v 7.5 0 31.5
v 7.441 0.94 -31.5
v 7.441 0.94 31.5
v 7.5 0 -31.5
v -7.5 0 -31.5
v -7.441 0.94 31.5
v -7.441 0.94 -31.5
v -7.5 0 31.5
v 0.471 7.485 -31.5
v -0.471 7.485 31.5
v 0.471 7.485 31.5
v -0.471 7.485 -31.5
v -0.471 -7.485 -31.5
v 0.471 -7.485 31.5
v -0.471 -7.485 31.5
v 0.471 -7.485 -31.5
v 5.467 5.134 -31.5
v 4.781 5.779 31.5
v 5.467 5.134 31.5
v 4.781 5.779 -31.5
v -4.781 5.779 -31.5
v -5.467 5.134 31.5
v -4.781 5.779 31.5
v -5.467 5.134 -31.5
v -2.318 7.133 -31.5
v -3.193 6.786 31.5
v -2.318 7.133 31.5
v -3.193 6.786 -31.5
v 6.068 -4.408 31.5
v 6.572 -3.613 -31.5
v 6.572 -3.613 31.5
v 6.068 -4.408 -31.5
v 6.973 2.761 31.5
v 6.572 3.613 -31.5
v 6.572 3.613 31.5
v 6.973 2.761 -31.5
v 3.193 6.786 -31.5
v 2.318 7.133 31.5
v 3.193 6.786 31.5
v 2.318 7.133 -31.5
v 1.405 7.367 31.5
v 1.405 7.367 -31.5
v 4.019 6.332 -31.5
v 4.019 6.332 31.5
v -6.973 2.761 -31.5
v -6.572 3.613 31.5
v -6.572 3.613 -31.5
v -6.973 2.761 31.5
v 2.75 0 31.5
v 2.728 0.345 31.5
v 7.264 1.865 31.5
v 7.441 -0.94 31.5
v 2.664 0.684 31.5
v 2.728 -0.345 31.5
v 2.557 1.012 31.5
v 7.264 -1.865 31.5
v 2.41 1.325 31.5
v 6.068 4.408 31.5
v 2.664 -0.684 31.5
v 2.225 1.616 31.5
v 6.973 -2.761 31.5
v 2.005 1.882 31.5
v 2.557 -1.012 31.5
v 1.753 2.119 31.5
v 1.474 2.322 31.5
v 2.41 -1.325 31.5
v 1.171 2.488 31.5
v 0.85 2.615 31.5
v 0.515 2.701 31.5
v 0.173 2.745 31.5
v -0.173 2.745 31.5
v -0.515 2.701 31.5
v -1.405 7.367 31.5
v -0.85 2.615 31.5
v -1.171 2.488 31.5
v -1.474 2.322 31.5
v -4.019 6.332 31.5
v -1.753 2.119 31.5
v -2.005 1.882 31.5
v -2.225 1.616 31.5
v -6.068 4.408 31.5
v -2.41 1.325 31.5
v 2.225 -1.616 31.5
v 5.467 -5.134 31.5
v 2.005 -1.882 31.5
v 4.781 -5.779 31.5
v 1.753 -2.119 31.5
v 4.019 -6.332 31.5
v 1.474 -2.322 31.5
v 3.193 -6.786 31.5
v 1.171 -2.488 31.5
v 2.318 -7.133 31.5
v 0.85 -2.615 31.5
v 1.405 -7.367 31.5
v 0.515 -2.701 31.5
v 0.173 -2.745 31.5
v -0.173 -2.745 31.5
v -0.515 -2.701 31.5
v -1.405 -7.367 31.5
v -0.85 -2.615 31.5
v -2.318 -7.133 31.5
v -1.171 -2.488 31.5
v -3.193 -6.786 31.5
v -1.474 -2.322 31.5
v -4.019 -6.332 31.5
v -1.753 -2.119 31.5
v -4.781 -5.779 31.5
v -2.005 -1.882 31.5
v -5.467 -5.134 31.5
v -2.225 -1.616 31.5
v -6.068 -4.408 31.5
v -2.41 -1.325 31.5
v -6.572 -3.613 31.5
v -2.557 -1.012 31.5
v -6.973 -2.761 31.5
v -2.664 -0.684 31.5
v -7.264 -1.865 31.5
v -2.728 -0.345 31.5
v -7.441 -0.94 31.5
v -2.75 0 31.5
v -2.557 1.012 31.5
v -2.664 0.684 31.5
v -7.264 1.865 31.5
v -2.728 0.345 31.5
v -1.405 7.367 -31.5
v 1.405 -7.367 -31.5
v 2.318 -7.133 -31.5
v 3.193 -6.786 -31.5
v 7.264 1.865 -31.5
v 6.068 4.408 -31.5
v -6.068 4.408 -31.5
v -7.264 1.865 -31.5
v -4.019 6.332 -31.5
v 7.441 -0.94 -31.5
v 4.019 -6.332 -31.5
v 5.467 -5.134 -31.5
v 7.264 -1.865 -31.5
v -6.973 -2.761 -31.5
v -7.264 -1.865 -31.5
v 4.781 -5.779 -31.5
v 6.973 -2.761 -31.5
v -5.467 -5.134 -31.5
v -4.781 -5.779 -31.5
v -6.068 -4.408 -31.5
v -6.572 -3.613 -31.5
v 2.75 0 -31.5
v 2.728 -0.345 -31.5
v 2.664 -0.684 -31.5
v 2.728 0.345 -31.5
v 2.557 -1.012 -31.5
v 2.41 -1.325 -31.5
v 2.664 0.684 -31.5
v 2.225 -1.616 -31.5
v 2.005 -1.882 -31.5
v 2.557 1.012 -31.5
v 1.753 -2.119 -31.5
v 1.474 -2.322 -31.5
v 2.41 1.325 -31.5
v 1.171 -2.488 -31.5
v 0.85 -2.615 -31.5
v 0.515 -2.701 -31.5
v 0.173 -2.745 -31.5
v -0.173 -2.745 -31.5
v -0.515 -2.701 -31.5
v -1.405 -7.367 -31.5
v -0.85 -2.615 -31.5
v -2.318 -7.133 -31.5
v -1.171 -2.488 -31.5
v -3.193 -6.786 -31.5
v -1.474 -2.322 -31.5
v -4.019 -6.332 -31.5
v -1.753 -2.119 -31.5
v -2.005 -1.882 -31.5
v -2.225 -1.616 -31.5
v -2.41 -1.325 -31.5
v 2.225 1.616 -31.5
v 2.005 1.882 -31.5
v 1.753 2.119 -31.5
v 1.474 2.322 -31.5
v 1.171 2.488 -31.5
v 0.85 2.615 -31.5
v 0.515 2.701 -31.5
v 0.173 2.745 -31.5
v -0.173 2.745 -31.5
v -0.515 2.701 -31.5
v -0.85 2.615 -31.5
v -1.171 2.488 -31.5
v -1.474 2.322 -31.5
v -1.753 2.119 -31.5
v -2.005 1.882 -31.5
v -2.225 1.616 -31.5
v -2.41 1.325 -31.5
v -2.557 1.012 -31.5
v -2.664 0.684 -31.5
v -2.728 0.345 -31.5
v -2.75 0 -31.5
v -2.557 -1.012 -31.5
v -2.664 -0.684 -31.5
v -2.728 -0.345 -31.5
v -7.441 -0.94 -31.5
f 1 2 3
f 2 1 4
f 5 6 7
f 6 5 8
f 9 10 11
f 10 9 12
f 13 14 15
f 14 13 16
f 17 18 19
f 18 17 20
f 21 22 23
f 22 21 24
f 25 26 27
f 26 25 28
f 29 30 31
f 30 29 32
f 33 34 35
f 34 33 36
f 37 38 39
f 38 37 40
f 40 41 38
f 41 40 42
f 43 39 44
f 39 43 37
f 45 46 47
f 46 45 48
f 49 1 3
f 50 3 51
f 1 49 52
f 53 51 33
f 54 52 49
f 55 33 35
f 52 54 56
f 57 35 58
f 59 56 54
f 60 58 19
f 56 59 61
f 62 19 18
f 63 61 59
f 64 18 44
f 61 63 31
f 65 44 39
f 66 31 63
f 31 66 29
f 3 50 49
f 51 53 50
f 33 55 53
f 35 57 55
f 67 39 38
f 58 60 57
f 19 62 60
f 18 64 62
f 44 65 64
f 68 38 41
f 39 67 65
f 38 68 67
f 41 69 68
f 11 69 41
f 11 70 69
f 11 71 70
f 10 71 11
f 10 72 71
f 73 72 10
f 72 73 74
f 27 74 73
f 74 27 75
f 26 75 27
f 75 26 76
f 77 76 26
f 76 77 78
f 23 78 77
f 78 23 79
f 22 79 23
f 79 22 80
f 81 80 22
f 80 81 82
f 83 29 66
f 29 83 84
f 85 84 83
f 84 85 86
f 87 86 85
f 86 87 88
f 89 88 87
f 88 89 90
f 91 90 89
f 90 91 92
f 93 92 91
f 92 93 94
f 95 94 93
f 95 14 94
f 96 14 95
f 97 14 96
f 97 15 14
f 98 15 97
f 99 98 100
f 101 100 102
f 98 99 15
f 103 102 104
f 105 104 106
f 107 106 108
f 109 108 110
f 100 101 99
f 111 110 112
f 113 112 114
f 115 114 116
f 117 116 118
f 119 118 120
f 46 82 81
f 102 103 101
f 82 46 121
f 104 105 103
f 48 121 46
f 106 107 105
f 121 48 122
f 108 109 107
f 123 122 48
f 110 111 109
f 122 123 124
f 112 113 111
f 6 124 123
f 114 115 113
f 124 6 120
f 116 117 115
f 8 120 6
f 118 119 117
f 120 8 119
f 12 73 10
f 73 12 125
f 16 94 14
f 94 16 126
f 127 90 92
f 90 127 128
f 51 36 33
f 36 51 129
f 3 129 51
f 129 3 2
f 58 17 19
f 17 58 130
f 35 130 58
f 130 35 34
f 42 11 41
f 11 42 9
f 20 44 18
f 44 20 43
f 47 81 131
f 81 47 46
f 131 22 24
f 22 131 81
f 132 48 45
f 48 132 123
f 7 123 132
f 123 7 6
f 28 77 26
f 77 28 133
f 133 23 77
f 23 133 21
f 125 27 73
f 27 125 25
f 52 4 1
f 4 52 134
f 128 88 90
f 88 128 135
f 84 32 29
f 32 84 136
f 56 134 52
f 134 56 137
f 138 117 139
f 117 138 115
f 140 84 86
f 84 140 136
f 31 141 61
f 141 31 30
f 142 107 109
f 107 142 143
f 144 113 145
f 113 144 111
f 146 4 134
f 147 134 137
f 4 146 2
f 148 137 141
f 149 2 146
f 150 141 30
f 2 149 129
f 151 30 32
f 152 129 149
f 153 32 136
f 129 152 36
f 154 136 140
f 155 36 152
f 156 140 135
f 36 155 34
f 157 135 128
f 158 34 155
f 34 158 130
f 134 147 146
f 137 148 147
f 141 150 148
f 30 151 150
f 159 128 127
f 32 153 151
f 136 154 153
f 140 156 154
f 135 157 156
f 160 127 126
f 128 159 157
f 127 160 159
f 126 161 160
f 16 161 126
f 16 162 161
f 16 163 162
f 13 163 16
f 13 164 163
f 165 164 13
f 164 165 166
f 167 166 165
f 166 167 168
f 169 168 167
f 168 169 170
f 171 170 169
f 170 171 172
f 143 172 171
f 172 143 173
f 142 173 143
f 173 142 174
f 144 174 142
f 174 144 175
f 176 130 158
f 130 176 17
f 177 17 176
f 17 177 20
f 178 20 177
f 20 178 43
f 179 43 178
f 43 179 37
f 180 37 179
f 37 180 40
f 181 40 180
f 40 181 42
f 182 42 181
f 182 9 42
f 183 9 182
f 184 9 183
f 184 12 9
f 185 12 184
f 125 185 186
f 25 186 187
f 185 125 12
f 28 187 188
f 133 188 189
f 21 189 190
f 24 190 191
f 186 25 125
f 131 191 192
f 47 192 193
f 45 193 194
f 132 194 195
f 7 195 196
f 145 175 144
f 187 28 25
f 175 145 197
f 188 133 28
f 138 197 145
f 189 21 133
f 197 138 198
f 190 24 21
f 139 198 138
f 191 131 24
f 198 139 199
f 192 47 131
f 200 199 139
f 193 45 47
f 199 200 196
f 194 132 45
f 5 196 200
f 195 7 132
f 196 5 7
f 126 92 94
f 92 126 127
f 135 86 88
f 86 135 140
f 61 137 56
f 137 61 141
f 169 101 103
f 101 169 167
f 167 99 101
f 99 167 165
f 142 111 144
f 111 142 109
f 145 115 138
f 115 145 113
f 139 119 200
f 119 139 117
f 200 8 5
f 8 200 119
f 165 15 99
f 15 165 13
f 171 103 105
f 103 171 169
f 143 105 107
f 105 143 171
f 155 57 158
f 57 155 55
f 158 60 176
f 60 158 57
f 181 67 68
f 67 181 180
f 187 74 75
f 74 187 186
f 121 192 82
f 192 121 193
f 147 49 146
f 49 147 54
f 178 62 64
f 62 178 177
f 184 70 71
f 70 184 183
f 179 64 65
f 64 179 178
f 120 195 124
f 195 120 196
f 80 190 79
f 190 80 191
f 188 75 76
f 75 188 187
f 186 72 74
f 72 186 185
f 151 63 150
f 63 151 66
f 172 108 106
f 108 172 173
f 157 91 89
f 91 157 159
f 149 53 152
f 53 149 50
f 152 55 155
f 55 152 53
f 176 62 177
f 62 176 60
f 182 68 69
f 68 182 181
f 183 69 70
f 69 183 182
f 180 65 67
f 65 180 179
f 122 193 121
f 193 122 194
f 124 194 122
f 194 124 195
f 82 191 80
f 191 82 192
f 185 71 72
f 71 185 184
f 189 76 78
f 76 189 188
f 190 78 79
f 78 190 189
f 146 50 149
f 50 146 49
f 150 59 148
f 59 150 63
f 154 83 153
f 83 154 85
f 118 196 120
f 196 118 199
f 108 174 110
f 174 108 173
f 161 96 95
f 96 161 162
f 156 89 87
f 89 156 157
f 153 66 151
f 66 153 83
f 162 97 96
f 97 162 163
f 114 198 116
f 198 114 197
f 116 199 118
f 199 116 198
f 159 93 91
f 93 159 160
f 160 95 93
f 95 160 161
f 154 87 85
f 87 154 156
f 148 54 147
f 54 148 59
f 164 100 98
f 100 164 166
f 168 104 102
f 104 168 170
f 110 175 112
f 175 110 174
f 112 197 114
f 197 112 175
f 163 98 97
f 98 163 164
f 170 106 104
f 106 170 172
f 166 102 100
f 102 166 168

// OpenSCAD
$fn = 50;


difference() {
	union() {
		translate(v = [0, 0, -31.5000000000]) {
			cylinder(h = 63, r = 7.5000000000);
		}
	}
	union() {
		translate(v = [0, 0, -100.0000000000]) {
			cylinder(h = 200, r = 2.7500000000);
		}
	}
}
